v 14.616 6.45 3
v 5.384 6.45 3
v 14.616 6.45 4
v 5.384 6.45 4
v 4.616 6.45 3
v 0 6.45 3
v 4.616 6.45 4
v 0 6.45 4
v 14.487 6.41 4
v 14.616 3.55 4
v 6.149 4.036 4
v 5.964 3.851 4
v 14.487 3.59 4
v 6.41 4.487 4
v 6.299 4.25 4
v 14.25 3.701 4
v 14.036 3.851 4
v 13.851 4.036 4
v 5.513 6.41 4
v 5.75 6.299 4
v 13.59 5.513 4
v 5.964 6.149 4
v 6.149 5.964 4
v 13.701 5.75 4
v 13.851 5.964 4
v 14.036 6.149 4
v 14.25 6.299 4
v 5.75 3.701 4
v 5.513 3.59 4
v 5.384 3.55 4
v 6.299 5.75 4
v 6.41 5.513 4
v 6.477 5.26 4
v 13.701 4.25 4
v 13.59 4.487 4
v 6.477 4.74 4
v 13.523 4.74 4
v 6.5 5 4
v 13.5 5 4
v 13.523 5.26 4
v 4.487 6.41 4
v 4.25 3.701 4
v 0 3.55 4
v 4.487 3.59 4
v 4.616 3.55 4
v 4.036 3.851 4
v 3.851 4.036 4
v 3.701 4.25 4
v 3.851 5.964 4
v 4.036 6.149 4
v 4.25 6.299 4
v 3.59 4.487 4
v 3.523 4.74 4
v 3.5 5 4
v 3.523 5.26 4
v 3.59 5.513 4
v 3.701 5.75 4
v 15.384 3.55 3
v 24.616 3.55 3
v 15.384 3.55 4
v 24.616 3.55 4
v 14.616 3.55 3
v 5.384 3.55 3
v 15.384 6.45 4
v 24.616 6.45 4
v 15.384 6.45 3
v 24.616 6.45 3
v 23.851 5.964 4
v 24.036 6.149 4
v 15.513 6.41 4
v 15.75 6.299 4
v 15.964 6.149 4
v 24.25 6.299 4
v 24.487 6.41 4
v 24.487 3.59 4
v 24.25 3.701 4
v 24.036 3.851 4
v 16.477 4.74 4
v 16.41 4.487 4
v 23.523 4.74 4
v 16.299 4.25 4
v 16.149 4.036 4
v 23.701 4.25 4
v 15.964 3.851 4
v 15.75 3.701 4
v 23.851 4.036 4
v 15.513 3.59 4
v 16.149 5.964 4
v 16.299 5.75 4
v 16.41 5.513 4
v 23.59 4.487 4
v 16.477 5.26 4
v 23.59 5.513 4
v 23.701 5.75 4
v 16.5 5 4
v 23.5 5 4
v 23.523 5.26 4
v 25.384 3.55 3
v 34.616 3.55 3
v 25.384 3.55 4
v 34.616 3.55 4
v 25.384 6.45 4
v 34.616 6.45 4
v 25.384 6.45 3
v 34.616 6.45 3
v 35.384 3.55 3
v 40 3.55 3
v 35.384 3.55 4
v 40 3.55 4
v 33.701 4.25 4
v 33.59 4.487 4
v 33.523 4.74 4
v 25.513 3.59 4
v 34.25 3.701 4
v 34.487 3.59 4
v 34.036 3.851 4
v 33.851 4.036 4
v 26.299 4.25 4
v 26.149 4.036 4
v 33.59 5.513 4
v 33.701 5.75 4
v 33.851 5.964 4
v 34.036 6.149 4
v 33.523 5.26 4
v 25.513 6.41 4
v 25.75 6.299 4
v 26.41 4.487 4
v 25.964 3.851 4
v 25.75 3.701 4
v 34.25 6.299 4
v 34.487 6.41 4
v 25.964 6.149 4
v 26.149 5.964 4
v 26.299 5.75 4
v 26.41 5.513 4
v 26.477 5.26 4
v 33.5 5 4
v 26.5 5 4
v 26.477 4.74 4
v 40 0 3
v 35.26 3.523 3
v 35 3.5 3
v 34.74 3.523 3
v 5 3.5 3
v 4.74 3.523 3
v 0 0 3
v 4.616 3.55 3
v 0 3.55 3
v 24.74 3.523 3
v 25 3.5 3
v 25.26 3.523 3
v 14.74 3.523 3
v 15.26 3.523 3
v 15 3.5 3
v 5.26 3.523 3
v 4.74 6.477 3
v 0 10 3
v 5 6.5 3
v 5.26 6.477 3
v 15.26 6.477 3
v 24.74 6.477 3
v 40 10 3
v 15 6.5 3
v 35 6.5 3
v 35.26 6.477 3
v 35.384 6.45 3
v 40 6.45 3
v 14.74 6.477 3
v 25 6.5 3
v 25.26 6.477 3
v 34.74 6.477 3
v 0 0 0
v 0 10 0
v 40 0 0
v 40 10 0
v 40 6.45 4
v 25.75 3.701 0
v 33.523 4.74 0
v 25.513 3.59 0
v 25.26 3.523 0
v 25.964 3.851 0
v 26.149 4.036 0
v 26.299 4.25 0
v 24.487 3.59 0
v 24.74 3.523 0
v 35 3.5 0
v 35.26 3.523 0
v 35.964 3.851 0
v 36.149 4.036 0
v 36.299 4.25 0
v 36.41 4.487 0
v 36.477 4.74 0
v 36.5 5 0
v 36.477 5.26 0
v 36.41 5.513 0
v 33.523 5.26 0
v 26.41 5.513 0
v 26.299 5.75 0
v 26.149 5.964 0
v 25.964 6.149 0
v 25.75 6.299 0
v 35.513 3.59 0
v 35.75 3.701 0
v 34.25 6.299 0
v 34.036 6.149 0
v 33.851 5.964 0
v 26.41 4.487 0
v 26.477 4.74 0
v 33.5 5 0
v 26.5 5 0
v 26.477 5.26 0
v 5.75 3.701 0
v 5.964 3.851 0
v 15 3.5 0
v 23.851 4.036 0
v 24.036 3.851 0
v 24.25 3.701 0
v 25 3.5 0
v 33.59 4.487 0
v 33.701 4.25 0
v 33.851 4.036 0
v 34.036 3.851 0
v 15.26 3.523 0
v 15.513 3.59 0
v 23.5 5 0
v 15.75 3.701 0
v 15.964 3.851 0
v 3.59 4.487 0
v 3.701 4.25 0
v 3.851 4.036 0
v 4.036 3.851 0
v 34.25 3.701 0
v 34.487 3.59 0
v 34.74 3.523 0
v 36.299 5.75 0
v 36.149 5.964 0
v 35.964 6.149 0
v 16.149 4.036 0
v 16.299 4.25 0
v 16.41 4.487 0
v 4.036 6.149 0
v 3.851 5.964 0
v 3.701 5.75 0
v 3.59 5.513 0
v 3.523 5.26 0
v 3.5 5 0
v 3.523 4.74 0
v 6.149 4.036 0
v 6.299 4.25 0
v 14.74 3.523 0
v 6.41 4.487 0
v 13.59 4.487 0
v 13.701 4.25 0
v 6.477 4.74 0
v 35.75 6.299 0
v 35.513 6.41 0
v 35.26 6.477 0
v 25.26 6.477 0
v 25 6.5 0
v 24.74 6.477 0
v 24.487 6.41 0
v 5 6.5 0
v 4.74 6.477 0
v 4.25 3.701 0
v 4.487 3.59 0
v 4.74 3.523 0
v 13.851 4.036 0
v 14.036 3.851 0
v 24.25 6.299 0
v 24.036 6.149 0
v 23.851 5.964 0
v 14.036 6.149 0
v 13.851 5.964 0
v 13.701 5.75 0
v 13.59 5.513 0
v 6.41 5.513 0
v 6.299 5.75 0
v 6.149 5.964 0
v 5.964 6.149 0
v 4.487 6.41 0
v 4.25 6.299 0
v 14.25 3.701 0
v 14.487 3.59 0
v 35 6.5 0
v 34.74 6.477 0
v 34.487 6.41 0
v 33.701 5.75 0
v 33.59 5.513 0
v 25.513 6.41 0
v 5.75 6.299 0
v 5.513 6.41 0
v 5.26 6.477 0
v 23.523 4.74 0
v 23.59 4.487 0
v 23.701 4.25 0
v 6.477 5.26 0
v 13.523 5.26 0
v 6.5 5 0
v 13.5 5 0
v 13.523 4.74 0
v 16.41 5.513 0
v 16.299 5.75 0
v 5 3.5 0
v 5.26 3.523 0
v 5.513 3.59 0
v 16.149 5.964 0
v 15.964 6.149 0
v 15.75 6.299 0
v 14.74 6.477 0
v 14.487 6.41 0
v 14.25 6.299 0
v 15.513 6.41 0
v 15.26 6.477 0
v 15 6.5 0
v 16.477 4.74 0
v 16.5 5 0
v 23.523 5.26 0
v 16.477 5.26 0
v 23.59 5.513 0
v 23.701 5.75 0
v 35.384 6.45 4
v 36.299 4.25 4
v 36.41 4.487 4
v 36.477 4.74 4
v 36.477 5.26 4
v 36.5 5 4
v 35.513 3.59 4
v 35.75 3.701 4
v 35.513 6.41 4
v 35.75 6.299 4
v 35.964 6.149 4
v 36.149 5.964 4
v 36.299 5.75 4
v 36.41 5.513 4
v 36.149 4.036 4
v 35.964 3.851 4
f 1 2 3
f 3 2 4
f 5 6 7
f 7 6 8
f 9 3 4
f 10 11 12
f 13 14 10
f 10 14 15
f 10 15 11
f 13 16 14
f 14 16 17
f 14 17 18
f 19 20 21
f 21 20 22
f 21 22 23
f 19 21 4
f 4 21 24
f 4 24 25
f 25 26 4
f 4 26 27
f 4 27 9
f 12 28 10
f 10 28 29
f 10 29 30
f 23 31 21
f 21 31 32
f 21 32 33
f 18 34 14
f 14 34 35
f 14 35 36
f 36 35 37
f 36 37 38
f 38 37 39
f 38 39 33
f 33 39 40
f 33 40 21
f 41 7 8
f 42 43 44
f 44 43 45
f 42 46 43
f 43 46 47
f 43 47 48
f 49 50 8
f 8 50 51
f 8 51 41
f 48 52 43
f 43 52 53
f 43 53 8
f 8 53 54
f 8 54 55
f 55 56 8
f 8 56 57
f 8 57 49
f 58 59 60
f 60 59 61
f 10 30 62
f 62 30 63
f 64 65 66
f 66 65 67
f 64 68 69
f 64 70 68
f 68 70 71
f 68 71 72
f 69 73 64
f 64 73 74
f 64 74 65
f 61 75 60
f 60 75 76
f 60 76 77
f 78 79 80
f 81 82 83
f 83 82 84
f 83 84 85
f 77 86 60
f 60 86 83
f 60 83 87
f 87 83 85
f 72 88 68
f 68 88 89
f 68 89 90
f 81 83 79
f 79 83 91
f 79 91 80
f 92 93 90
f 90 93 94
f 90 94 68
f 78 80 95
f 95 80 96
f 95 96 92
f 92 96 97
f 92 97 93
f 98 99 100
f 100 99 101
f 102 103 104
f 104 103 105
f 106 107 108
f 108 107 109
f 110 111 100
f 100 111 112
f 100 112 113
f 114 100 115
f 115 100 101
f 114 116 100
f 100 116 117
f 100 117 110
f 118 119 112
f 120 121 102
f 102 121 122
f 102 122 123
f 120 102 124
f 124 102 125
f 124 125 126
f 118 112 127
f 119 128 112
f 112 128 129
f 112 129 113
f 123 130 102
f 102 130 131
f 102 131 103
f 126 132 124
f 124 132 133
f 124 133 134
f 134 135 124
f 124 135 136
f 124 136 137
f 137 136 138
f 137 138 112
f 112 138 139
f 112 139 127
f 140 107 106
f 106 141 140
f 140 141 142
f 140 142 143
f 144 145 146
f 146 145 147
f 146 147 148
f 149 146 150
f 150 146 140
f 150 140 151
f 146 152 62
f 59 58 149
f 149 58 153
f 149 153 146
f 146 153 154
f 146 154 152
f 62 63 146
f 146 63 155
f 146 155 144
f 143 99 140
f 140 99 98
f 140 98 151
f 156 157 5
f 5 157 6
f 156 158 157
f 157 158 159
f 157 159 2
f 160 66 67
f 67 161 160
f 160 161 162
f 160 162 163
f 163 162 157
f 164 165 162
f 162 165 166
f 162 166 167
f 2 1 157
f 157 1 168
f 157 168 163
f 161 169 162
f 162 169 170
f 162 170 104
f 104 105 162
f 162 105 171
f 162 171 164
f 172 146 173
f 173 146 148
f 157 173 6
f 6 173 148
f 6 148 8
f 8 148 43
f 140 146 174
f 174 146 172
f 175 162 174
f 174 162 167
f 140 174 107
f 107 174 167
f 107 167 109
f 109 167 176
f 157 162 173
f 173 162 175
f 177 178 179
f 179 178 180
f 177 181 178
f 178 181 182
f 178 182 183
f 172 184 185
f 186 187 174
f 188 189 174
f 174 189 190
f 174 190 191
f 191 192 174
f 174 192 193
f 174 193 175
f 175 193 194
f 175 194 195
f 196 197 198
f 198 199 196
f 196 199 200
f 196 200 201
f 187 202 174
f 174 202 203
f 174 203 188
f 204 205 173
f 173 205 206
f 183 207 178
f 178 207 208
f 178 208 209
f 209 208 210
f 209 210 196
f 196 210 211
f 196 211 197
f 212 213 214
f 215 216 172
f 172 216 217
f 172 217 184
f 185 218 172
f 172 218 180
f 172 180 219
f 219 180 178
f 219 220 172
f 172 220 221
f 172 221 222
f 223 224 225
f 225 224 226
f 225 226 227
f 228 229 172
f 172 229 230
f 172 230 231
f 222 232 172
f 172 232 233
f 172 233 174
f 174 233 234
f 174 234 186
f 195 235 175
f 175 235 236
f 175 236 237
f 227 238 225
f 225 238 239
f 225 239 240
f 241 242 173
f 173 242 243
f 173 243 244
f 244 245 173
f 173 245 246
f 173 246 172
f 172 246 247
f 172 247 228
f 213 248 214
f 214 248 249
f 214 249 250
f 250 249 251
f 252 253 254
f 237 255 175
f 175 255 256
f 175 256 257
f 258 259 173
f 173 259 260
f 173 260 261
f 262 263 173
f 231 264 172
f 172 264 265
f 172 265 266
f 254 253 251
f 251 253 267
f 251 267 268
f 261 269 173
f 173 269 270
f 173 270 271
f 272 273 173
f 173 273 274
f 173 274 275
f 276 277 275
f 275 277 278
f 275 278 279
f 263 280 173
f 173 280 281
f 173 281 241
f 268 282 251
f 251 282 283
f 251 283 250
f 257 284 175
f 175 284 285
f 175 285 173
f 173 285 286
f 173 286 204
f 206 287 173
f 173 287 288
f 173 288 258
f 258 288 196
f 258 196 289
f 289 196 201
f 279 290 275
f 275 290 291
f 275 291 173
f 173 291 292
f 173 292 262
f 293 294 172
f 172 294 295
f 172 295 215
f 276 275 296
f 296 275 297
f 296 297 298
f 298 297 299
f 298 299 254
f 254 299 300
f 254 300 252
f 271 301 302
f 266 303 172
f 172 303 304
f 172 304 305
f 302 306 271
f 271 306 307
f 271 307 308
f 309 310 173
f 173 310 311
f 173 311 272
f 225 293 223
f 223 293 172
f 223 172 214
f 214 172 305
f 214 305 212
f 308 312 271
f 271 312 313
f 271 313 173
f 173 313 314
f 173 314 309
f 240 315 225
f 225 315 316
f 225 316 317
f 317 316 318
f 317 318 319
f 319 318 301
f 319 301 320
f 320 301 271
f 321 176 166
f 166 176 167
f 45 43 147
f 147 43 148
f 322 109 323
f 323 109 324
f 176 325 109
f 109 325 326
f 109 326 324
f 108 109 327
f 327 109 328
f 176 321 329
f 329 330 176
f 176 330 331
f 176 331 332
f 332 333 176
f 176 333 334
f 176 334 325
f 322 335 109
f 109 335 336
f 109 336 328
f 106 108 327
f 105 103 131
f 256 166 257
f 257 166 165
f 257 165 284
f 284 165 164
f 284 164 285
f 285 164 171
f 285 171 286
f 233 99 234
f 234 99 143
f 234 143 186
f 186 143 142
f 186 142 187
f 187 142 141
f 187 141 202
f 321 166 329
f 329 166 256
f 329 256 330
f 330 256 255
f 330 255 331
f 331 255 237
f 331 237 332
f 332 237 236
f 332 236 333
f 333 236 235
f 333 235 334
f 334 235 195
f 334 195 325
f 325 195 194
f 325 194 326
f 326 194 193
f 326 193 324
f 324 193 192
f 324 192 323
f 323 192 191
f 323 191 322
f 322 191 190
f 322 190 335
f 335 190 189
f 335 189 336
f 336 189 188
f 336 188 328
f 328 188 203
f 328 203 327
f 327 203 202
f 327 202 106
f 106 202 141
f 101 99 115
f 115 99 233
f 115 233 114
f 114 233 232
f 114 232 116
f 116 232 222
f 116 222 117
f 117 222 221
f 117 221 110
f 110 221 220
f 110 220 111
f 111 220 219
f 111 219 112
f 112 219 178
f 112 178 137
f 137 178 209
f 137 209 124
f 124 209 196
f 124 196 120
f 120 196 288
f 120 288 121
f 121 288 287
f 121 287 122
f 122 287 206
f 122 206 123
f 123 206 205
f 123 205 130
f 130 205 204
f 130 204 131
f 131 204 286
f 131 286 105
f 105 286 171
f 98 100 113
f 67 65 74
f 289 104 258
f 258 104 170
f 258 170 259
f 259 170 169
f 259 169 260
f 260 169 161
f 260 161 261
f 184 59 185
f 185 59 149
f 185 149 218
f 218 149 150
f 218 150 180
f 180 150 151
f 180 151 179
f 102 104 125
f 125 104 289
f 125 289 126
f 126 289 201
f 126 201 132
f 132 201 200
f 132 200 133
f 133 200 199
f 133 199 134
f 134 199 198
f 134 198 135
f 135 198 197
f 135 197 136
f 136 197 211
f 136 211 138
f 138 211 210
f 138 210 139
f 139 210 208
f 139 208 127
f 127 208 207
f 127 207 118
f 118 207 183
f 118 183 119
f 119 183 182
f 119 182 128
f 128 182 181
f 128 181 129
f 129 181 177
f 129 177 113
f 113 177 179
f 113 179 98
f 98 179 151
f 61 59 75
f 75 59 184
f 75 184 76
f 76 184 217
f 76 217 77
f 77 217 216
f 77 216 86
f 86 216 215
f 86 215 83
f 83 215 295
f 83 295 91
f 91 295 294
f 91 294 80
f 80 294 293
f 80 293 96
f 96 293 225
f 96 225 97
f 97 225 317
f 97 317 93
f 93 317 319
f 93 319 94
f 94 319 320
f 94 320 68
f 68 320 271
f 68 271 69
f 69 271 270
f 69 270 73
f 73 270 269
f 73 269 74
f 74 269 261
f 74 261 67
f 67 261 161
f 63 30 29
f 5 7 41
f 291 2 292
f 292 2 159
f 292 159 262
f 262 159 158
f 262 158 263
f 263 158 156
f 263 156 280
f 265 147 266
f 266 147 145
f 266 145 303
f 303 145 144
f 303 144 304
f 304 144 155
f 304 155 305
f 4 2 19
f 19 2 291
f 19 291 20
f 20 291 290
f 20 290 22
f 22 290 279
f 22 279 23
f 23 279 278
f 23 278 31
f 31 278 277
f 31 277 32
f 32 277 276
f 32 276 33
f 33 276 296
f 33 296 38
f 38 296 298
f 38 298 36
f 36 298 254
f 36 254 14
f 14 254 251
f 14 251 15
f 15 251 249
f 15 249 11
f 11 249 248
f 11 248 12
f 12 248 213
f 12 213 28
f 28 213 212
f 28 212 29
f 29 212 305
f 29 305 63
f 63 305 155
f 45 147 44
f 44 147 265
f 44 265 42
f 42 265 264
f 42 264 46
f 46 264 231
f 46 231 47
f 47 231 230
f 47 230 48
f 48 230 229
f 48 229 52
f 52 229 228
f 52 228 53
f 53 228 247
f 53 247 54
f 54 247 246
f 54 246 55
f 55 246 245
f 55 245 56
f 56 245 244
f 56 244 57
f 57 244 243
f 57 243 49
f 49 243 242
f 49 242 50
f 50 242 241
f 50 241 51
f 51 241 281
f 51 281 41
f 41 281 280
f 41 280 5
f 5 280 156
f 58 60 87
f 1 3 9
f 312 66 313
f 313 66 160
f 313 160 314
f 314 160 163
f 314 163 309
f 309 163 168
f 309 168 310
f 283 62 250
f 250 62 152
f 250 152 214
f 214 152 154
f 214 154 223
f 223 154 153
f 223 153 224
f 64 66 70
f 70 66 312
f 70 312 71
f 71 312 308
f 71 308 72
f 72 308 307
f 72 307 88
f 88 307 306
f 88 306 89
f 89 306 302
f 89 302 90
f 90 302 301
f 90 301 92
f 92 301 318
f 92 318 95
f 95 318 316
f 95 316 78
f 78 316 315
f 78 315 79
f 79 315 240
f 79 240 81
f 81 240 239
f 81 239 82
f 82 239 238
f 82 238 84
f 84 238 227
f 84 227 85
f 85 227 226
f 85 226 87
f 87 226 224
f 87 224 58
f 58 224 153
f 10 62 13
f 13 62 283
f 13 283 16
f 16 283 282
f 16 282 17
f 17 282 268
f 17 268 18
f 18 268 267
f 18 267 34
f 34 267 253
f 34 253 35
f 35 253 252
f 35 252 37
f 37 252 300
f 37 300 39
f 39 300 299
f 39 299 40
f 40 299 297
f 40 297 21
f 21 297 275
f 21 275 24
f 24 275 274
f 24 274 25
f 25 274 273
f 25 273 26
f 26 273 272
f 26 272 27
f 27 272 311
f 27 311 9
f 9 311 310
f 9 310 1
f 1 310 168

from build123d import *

# Parameters (mm, degrees)
ESQUISSE1_W                = 40
ESQUISSE1_H                = 10
BOSS_EXTRU_1_DEPTH         = 3
ESQUISSE2_W                = 40
ESQUISSE2_H                = 2.9
BOSS_EXTRU_2_DEPTH         = 1
ESQUISSE3_R                = 1.5
ENL_V_MAT_EXTRU_1_DEPTH    = 5
R_P_TITION_LIN_AIRE1_COUNT = 4
R_P_TITION_LIN_AIRE1_PITCH = 10


with BuildPart() as part:
    # Esquisse1 → Boss.-Extru.1 (new body)
    with BuildSketch(Plane.XY):
        with Locations((20, 5)):
            Rectangle(ESQUISSE1_W, ESQUISSE1_H)
    extrude(amount=BOSS_EXTRU_1_DEPTH)

    # Esquisse2 → Boss.-Extru.2 (add)
    with BuildSketch(Plane.XY.offset(3)):
        with Locations((20, 5)):
            Rectangle(ESQUISSE2_W, ESQUISSE2_H)
    extrude(amount=BOSS_EXTRU_2_DEPTH)

    # Esquisse3 → Enlèv. mat.-Extru.1 (cut, through all)
    with BuildSketch(Plane(origin=(0, 0, 0), x_dir=(-1, 0, 0), z_dir=(0, 0, -1))):
        with Locations((-35, 5)):
            Circle(ESQUISSE3_R)
    enl_v_mat_extru_1 = extrude(amount=-ENL_V_MAT_EXTRU_1_DEPTH, mode=Mode.SUBTRACT)

    # Répétition linéaire1: Enlèv. mat.-Extru.1 ×4
    with Locations(*[(-i * R_P_TITION_LIN_AIRE1_PITCH, 0, 0) for i in range(1, R_P_TITION_LIN_AIRE1_COUNT)]):
        add(enl_v_mat_extru_1, mode=Mode.SUBTRACT)


solid = part.part
